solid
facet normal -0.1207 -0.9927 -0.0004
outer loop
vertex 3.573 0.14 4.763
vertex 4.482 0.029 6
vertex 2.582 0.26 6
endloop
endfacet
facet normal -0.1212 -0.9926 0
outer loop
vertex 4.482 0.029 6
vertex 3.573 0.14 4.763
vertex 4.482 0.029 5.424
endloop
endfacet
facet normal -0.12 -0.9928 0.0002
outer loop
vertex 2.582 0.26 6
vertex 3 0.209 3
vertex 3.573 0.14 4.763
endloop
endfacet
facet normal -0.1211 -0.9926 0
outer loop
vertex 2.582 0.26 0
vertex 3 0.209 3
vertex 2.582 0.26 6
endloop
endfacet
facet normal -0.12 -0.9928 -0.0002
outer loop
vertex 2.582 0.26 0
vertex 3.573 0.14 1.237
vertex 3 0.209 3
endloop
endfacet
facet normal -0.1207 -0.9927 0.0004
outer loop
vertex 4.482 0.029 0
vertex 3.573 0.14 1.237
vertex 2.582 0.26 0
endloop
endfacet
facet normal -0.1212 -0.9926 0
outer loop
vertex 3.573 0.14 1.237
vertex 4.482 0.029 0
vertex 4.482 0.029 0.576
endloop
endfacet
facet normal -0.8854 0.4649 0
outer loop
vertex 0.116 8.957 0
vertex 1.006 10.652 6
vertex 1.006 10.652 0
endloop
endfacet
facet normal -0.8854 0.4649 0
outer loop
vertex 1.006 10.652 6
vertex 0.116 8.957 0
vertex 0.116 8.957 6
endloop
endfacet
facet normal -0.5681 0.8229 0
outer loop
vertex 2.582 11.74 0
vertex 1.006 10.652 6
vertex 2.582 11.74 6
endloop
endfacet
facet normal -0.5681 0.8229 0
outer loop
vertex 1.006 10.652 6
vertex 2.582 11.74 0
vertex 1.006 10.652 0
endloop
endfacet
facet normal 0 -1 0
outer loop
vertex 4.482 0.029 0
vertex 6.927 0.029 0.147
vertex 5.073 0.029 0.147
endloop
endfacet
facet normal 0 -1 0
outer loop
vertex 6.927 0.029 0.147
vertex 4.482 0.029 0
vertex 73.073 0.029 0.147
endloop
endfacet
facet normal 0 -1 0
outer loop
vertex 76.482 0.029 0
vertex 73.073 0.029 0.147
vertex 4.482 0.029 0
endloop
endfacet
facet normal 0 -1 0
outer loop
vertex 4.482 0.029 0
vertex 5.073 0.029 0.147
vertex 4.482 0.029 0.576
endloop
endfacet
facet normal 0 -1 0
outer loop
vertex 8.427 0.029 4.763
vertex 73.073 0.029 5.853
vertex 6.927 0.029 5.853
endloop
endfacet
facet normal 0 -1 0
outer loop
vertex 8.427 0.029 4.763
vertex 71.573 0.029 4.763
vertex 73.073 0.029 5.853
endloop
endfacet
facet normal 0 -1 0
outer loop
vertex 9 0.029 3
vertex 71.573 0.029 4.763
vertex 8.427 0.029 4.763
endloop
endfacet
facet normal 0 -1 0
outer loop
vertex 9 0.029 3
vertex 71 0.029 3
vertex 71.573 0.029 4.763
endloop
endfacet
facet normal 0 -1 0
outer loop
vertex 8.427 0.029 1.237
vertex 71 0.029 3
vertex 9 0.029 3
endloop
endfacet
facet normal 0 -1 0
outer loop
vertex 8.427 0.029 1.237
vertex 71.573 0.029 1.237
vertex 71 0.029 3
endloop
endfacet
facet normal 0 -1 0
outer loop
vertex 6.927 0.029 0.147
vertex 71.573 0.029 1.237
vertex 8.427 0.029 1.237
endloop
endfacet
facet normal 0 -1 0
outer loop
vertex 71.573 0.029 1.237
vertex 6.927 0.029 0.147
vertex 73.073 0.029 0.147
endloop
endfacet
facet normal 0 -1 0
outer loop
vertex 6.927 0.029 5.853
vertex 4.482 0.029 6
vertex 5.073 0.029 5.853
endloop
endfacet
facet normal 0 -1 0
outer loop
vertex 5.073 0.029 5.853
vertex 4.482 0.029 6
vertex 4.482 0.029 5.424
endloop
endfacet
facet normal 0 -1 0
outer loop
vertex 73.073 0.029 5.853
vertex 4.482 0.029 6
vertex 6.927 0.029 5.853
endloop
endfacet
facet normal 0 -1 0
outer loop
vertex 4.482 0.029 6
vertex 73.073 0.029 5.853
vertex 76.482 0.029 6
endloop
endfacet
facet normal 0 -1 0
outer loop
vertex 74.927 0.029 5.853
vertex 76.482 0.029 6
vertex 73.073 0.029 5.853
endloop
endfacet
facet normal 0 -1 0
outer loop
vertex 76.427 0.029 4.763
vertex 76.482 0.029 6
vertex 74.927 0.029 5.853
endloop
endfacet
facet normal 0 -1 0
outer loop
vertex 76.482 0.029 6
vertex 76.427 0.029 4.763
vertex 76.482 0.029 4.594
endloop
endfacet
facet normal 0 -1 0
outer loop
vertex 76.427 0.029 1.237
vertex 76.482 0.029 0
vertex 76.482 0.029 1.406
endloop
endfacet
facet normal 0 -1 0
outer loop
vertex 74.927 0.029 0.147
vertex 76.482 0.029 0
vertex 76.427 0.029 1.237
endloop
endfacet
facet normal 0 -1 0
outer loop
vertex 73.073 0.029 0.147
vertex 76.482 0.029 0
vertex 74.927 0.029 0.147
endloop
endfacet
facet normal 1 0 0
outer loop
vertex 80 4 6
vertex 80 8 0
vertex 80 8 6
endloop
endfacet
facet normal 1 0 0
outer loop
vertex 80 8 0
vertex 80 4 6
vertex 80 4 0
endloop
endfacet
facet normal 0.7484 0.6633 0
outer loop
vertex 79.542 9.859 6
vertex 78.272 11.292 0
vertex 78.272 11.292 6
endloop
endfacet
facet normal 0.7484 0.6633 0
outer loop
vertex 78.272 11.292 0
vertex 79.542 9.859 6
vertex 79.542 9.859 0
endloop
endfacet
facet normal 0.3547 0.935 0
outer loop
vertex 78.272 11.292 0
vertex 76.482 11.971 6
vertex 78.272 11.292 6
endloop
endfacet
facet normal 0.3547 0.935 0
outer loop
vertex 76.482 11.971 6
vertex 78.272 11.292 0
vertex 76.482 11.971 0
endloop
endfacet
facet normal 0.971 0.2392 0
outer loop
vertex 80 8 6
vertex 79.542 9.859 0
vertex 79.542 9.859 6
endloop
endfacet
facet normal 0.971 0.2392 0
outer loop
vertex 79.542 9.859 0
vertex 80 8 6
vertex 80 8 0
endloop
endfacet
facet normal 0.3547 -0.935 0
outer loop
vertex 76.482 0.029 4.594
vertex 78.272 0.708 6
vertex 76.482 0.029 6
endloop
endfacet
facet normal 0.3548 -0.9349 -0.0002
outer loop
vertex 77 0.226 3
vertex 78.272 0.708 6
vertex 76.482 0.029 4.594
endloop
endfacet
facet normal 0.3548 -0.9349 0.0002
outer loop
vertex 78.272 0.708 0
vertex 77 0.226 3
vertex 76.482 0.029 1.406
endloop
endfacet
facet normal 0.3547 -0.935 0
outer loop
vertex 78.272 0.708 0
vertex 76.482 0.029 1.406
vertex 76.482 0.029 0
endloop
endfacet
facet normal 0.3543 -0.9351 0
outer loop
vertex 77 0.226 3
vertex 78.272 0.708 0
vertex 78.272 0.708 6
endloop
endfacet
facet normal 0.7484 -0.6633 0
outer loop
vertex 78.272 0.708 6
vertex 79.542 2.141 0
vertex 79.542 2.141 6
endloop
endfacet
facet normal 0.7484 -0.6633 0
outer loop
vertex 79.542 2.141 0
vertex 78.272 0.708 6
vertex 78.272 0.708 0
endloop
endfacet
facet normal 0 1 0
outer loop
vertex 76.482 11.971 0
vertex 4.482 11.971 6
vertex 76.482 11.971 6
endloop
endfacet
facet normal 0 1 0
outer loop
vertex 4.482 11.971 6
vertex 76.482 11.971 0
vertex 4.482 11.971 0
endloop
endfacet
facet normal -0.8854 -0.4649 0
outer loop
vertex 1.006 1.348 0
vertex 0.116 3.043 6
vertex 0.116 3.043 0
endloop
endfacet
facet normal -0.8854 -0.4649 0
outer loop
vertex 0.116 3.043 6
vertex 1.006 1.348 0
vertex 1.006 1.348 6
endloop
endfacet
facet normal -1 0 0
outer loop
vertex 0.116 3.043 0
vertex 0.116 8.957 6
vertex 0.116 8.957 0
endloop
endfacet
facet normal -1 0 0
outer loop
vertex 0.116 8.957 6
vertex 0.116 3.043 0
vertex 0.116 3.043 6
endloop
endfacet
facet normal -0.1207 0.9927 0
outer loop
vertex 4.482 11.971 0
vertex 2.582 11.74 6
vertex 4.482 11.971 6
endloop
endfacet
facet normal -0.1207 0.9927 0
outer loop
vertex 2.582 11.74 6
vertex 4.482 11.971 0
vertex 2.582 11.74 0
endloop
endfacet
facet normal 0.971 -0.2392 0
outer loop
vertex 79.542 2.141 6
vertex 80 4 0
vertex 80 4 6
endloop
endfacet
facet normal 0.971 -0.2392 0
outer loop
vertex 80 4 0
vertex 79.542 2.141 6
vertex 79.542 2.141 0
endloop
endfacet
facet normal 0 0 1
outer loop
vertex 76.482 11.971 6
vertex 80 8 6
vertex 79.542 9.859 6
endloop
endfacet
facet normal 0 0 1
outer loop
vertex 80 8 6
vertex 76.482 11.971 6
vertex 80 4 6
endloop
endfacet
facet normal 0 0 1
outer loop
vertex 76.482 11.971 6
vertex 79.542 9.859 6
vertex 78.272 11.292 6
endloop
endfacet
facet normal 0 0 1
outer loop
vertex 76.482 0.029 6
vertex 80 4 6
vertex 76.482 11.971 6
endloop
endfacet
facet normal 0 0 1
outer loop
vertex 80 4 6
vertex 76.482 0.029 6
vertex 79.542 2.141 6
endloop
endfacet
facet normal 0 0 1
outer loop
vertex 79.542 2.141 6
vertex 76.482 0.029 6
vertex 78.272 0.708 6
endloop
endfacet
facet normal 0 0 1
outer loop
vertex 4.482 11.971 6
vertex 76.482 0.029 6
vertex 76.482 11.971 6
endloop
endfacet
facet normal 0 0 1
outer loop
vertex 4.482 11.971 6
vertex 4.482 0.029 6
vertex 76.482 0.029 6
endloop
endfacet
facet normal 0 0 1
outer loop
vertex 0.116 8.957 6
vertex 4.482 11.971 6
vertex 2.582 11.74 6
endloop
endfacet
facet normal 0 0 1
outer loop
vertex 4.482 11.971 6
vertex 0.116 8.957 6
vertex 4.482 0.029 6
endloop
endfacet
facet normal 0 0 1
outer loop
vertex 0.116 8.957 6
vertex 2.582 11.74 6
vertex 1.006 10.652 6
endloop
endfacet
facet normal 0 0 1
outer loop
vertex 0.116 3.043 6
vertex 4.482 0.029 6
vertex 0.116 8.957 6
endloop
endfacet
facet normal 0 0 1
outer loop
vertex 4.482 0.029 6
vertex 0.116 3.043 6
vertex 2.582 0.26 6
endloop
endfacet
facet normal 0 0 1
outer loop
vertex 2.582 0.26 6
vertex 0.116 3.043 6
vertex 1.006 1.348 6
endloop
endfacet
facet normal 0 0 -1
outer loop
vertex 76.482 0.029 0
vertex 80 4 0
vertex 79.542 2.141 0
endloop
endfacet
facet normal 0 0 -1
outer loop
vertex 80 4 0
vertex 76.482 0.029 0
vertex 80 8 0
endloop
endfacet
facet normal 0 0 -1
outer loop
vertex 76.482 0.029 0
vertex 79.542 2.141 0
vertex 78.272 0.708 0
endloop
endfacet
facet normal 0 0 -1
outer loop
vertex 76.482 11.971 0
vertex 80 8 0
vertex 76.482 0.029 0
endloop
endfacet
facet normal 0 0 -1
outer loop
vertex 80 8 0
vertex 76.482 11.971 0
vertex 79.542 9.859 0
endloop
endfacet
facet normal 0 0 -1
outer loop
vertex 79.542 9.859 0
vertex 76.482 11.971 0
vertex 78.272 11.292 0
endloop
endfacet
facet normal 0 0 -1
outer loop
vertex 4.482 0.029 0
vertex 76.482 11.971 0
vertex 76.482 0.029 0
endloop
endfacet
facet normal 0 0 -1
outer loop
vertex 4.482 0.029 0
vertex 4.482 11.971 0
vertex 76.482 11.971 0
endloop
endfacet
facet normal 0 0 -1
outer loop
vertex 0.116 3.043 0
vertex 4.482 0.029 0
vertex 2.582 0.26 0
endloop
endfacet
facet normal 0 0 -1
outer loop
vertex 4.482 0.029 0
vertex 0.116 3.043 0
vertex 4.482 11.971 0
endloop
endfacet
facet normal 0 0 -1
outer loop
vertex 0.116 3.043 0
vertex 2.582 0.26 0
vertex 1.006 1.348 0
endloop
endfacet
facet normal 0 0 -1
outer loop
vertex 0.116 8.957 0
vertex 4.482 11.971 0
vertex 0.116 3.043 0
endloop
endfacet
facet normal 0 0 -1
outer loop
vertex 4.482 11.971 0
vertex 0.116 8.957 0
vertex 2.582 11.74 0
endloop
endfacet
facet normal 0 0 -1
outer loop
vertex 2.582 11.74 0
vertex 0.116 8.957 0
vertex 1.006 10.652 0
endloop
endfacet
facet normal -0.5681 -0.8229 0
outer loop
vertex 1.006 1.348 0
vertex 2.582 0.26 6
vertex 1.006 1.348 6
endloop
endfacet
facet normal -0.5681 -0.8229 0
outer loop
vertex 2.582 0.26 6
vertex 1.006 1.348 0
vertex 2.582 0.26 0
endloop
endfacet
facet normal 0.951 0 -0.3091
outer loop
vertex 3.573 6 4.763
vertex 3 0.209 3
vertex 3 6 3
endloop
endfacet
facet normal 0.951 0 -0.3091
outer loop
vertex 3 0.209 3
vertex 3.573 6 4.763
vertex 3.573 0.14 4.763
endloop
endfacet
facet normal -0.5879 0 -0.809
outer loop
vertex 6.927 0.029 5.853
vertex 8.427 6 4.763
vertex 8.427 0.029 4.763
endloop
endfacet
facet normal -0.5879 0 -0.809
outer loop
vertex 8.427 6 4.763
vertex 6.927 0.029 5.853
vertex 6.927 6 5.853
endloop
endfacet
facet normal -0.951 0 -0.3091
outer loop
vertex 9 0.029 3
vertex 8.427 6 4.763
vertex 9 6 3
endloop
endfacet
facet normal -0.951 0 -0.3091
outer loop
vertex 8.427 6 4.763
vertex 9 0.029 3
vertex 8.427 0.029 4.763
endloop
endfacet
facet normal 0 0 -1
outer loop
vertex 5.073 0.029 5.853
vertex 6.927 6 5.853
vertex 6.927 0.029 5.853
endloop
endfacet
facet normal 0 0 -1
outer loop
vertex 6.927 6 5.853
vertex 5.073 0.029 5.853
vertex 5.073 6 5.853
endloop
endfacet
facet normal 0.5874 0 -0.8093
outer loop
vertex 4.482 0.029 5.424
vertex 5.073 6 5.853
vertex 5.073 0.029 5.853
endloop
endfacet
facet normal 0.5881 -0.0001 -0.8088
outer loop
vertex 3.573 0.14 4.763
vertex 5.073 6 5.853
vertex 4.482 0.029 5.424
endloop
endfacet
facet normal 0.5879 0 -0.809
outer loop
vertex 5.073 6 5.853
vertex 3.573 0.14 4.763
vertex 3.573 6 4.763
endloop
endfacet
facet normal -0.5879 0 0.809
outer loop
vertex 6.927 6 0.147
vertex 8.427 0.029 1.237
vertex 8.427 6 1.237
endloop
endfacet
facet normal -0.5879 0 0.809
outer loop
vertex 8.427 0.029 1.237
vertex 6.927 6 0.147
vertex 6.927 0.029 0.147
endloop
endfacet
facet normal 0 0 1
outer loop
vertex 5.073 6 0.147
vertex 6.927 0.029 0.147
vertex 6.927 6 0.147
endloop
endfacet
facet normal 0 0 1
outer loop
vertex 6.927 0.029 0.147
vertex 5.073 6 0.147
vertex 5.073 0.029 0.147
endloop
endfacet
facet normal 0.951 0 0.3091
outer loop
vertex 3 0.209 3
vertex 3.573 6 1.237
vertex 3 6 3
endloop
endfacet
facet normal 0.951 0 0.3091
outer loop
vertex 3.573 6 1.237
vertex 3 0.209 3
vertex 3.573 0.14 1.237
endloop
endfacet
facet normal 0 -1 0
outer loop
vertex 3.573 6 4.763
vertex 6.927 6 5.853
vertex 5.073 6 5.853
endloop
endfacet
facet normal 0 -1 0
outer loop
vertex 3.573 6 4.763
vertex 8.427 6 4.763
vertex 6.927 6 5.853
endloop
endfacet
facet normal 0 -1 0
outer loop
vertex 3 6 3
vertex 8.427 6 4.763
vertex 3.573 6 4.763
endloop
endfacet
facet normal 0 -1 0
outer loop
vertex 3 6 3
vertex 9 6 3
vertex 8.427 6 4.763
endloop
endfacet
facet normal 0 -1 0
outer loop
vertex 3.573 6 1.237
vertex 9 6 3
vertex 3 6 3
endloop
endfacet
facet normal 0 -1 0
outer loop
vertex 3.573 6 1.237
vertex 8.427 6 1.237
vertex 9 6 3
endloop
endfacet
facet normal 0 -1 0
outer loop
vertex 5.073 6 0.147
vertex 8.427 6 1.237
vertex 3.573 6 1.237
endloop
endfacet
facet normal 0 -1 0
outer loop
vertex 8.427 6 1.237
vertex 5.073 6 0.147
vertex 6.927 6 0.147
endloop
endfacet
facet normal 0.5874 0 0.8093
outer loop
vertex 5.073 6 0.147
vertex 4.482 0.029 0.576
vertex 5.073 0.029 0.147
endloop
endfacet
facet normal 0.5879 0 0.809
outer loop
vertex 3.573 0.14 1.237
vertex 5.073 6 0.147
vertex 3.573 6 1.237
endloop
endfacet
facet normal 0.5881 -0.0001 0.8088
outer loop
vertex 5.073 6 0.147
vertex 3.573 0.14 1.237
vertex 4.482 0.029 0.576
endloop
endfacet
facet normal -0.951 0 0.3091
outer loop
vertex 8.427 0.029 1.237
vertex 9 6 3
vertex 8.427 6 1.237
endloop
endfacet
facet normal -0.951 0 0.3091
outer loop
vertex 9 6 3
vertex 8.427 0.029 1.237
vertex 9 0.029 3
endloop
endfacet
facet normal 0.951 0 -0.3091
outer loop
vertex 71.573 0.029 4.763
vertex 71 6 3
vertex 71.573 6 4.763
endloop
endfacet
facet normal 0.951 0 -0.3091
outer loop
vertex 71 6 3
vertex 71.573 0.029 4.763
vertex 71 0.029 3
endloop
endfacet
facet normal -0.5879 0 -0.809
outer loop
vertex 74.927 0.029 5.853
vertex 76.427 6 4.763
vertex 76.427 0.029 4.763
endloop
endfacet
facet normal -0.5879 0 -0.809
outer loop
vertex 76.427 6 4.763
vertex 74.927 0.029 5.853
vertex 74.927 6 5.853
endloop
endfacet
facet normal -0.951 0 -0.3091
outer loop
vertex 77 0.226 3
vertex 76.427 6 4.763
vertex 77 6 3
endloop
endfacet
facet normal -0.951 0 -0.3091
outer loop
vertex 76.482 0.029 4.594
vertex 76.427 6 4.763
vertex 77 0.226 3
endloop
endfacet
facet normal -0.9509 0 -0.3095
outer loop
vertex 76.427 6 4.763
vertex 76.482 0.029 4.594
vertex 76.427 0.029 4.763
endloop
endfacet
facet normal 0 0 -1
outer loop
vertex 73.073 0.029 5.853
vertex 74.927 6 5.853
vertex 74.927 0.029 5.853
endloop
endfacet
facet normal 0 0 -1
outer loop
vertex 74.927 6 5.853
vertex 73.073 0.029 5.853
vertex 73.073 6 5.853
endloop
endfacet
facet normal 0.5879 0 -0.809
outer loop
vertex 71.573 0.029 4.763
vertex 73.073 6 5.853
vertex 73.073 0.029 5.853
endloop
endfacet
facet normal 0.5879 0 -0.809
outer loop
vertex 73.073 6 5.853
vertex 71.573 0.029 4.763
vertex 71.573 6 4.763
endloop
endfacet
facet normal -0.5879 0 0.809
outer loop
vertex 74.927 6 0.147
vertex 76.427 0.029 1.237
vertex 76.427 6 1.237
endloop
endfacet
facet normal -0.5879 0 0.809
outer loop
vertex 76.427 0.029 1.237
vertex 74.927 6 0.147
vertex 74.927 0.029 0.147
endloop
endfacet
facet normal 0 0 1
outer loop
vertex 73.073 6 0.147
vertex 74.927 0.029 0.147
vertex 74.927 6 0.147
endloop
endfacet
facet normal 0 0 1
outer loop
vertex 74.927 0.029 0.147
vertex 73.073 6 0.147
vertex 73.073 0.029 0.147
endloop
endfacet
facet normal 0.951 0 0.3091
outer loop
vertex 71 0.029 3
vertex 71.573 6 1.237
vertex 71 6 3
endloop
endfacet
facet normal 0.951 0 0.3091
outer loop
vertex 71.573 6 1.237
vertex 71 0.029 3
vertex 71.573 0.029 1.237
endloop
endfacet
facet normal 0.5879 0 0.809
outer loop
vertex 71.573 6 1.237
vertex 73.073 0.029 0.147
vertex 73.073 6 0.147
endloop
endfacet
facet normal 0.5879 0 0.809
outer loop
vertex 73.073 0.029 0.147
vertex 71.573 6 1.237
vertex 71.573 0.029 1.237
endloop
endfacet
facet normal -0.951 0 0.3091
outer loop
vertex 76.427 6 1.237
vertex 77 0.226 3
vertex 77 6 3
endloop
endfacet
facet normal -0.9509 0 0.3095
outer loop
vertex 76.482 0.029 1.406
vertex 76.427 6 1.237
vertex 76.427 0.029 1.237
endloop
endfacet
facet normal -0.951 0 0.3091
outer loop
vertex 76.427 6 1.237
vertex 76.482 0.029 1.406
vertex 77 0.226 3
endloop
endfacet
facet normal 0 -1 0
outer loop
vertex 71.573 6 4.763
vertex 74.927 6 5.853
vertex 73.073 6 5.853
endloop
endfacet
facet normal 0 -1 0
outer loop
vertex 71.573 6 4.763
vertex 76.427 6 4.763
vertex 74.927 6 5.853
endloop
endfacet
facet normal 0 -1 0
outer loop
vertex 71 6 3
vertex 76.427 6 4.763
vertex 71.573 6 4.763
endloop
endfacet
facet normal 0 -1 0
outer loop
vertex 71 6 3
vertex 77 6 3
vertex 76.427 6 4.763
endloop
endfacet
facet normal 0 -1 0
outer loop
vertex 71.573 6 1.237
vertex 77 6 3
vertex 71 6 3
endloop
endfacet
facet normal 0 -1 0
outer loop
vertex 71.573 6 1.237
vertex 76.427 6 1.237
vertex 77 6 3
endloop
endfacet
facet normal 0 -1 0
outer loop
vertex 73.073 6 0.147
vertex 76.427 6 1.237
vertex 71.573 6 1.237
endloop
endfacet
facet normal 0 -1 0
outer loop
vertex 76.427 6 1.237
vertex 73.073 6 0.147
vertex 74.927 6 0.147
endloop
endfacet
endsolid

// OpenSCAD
// Parameters for the rectangular bar
length = 80; // Length of the bar
width = 12;  // Adjusted width to reduce thickness
height = 6;  // Adjusted height to reduce thickness
corner_radius = 4; // Adjusted radius for more streamlined curvature
hole_radius = 3; // Radius of the through-holes remains the same
hole_offset = 6; // Adjusted offset to align the through-holes correctly

// Main module
module rectangular_bar() {
    // Create the rounded rectangular bar
    difference() {
        // Rounded rectangular bar
        hull() {
            translate([corner_radius, corner_radius, 0])
                cylinder(r=corner_radius, h=height);
            translate([length - corner_radius, corner_radius, 0])
                cylinder(r=corner_radius, h=height);
            translate([corner_radius, width - corner_radius, 0])
                cylinder(r=corner_radius, h=height);
            translate([length - corner_radius, width - corner_radius, 0])
                cylinder(r=corner_radius, h=height);
        }
        
        // Through-holes
        translate([hole_offset, width / 2, height / 2])
            rotate([90, 0, 0])
            cylinder(r=hole_radius, h=length + 2); // Slightly extended length for better alignment
        translate([length - hole_offset, width / 2, height / 2])
            rotate([90, 0, 0])
            cylinder(r=hole_radius, h=length + 2); // Slightly extended length for better alignment
    }
}

// Render the rectangular bar
rectangular_bar();
